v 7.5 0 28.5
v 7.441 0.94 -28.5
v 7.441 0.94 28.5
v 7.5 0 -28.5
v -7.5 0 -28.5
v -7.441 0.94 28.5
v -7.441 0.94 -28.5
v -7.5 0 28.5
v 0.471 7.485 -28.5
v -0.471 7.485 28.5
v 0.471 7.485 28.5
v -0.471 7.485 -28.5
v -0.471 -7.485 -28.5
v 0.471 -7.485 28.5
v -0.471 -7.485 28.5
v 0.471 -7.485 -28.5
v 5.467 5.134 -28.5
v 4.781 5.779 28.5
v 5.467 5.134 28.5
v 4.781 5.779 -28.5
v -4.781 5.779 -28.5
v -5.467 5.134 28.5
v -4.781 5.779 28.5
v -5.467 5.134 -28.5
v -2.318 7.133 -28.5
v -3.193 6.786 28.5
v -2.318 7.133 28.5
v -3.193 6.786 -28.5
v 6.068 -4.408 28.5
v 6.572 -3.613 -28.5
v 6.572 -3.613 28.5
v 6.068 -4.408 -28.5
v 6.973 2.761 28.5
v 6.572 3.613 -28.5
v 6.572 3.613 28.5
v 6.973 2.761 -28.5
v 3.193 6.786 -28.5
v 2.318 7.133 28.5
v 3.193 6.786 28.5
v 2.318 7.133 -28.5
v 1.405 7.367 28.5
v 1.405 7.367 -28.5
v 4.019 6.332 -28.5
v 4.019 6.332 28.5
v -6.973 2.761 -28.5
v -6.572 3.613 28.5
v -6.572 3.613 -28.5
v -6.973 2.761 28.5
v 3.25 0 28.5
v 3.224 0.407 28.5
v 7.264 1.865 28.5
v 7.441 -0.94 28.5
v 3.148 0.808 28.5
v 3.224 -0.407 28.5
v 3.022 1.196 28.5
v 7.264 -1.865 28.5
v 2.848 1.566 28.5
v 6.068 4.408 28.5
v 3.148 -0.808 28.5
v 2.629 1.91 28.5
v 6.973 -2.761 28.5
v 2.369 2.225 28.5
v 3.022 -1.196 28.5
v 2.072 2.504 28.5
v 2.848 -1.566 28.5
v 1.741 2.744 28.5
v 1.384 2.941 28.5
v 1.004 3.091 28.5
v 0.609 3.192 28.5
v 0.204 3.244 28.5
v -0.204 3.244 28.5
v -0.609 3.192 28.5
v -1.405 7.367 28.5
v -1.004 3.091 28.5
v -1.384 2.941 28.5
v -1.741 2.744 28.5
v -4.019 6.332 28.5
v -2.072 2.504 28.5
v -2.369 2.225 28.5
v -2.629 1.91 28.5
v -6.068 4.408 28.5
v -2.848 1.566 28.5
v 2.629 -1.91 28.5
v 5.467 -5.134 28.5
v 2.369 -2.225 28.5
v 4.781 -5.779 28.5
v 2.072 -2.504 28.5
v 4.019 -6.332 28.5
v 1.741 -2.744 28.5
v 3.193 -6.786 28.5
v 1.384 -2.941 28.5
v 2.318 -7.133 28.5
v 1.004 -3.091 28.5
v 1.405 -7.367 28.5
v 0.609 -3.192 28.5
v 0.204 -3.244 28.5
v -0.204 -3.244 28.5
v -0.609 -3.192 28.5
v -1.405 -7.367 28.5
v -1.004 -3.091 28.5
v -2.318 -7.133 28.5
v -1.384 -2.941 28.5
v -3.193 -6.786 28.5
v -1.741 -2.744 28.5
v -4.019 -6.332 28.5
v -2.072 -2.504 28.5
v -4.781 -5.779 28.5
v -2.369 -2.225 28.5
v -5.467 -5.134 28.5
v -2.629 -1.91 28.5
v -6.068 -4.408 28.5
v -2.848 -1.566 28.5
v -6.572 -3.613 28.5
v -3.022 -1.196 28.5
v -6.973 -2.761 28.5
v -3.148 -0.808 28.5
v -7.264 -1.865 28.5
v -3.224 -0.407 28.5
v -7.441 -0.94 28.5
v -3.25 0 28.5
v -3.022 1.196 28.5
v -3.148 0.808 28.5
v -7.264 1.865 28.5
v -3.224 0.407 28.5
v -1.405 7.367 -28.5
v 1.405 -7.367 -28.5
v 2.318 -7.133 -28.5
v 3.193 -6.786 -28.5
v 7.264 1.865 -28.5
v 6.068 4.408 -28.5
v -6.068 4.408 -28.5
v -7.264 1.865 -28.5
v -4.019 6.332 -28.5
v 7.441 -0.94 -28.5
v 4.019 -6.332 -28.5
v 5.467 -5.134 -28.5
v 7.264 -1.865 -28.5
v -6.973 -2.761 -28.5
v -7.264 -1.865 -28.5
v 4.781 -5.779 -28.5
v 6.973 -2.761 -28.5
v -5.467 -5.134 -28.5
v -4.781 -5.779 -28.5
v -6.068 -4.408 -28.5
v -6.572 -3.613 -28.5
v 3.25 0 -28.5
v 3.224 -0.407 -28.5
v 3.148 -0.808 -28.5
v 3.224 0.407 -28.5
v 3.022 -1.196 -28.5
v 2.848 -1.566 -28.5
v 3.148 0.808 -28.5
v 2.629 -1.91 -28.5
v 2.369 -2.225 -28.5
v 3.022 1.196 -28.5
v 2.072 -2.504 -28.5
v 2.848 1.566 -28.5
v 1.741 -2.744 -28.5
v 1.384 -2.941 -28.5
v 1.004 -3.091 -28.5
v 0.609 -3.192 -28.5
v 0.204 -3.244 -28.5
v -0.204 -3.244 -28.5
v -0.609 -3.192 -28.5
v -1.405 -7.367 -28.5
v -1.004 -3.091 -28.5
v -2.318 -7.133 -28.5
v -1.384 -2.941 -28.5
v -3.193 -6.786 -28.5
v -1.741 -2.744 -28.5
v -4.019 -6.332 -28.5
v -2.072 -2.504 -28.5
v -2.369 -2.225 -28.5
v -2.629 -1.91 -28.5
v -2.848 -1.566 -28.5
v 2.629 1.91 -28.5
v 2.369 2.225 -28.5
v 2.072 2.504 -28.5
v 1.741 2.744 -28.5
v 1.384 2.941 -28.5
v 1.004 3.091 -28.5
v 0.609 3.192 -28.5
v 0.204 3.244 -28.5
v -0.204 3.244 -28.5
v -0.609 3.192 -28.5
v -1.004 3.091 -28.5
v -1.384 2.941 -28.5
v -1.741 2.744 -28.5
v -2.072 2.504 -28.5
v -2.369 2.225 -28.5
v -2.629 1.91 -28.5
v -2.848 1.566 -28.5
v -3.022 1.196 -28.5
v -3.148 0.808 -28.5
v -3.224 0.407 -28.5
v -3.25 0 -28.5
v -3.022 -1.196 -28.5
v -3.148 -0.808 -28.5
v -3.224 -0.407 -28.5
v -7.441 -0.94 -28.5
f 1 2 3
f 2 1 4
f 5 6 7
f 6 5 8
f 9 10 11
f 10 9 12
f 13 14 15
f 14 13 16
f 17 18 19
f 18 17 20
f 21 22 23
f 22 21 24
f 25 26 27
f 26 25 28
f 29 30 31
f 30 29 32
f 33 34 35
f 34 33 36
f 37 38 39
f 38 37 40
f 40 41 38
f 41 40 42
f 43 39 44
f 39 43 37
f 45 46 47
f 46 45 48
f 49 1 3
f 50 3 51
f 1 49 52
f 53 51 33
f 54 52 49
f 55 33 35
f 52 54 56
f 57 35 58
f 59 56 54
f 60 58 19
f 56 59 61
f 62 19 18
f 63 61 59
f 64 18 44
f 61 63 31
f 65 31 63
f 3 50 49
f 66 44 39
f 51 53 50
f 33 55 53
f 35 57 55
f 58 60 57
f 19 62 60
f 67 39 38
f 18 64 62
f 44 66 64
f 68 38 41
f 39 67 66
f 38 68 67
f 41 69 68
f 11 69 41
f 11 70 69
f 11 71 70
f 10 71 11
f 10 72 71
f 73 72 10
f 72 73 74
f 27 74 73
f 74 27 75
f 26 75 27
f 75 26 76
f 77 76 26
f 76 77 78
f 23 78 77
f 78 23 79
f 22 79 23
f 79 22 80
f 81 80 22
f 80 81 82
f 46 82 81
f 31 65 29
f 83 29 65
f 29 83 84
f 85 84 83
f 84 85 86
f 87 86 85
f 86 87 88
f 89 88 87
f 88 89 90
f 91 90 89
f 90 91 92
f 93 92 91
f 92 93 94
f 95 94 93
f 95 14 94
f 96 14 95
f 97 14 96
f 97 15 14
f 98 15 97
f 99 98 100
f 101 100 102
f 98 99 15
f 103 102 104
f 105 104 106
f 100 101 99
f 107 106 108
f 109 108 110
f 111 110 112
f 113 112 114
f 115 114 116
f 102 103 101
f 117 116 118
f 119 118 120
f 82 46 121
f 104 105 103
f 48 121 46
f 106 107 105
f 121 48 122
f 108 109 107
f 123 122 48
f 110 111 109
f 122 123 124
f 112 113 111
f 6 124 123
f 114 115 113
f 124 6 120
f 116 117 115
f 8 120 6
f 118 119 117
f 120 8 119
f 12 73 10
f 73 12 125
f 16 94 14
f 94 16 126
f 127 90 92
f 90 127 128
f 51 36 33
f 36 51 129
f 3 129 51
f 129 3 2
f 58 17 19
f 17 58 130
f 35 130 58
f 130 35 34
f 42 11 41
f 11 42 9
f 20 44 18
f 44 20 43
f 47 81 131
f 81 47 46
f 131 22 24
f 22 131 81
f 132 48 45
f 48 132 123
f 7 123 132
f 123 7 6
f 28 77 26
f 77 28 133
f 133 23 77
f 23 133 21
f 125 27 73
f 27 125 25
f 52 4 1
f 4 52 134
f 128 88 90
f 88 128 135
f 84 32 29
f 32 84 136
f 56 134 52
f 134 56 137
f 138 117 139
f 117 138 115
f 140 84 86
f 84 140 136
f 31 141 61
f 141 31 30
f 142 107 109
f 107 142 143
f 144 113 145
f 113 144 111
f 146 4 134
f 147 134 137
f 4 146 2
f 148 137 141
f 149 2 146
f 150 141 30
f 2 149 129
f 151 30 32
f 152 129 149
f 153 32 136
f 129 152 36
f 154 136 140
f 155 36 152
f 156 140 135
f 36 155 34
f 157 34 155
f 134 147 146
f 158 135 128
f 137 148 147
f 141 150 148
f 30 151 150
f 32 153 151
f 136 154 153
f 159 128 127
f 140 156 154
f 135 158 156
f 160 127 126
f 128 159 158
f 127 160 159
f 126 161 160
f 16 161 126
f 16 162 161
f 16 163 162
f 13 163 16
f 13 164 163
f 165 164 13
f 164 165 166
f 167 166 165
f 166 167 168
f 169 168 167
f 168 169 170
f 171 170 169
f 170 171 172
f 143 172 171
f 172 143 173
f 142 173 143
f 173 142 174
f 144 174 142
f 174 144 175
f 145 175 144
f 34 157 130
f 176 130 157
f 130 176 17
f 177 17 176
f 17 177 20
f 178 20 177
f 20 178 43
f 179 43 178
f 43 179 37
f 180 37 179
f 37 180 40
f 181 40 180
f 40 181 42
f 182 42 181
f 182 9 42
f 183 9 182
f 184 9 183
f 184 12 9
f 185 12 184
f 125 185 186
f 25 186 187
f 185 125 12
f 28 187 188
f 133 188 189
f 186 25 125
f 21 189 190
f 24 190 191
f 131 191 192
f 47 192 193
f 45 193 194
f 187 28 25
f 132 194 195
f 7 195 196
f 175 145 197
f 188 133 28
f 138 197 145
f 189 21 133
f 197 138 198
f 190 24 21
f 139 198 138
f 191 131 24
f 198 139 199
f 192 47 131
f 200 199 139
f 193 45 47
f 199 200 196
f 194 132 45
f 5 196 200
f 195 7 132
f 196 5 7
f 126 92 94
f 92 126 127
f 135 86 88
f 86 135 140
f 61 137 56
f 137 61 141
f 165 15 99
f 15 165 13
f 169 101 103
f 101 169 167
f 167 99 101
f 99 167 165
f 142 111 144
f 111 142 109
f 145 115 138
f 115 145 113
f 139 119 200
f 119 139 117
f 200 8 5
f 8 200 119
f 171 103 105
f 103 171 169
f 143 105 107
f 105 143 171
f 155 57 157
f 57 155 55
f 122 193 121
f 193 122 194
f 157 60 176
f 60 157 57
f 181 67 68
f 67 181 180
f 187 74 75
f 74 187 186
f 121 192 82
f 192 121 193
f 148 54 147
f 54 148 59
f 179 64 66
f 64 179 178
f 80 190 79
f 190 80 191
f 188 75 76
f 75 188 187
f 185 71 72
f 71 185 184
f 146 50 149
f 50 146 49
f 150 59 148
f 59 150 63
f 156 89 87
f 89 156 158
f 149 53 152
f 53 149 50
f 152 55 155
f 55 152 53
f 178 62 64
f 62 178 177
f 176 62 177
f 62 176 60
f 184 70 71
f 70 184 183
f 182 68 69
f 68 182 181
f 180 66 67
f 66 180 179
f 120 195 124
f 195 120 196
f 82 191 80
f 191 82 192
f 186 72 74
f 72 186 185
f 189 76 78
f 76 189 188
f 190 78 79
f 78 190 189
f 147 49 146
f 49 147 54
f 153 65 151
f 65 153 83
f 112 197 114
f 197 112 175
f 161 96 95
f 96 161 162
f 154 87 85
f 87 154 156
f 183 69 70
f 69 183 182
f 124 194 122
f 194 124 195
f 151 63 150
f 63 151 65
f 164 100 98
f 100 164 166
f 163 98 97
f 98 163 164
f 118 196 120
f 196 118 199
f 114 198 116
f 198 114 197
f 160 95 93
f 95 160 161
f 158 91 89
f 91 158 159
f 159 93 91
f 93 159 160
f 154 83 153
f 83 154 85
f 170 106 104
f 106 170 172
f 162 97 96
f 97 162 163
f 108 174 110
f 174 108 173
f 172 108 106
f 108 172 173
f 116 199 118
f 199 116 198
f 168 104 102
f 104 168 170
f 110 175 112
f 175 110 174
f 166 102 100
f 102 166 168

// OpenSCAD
$fn = 50;


difference() {
	union() {
		translate(v = [0, 0, -28.5000000000]) {
			cylinder(h = 57, r = 7.5000000000);
		}
	}
	union() {
		translate(v = [0, 0, -100.0000000000]) {
			cylinder(h = 200, r = 3.2500000000);
		}
	}
}
